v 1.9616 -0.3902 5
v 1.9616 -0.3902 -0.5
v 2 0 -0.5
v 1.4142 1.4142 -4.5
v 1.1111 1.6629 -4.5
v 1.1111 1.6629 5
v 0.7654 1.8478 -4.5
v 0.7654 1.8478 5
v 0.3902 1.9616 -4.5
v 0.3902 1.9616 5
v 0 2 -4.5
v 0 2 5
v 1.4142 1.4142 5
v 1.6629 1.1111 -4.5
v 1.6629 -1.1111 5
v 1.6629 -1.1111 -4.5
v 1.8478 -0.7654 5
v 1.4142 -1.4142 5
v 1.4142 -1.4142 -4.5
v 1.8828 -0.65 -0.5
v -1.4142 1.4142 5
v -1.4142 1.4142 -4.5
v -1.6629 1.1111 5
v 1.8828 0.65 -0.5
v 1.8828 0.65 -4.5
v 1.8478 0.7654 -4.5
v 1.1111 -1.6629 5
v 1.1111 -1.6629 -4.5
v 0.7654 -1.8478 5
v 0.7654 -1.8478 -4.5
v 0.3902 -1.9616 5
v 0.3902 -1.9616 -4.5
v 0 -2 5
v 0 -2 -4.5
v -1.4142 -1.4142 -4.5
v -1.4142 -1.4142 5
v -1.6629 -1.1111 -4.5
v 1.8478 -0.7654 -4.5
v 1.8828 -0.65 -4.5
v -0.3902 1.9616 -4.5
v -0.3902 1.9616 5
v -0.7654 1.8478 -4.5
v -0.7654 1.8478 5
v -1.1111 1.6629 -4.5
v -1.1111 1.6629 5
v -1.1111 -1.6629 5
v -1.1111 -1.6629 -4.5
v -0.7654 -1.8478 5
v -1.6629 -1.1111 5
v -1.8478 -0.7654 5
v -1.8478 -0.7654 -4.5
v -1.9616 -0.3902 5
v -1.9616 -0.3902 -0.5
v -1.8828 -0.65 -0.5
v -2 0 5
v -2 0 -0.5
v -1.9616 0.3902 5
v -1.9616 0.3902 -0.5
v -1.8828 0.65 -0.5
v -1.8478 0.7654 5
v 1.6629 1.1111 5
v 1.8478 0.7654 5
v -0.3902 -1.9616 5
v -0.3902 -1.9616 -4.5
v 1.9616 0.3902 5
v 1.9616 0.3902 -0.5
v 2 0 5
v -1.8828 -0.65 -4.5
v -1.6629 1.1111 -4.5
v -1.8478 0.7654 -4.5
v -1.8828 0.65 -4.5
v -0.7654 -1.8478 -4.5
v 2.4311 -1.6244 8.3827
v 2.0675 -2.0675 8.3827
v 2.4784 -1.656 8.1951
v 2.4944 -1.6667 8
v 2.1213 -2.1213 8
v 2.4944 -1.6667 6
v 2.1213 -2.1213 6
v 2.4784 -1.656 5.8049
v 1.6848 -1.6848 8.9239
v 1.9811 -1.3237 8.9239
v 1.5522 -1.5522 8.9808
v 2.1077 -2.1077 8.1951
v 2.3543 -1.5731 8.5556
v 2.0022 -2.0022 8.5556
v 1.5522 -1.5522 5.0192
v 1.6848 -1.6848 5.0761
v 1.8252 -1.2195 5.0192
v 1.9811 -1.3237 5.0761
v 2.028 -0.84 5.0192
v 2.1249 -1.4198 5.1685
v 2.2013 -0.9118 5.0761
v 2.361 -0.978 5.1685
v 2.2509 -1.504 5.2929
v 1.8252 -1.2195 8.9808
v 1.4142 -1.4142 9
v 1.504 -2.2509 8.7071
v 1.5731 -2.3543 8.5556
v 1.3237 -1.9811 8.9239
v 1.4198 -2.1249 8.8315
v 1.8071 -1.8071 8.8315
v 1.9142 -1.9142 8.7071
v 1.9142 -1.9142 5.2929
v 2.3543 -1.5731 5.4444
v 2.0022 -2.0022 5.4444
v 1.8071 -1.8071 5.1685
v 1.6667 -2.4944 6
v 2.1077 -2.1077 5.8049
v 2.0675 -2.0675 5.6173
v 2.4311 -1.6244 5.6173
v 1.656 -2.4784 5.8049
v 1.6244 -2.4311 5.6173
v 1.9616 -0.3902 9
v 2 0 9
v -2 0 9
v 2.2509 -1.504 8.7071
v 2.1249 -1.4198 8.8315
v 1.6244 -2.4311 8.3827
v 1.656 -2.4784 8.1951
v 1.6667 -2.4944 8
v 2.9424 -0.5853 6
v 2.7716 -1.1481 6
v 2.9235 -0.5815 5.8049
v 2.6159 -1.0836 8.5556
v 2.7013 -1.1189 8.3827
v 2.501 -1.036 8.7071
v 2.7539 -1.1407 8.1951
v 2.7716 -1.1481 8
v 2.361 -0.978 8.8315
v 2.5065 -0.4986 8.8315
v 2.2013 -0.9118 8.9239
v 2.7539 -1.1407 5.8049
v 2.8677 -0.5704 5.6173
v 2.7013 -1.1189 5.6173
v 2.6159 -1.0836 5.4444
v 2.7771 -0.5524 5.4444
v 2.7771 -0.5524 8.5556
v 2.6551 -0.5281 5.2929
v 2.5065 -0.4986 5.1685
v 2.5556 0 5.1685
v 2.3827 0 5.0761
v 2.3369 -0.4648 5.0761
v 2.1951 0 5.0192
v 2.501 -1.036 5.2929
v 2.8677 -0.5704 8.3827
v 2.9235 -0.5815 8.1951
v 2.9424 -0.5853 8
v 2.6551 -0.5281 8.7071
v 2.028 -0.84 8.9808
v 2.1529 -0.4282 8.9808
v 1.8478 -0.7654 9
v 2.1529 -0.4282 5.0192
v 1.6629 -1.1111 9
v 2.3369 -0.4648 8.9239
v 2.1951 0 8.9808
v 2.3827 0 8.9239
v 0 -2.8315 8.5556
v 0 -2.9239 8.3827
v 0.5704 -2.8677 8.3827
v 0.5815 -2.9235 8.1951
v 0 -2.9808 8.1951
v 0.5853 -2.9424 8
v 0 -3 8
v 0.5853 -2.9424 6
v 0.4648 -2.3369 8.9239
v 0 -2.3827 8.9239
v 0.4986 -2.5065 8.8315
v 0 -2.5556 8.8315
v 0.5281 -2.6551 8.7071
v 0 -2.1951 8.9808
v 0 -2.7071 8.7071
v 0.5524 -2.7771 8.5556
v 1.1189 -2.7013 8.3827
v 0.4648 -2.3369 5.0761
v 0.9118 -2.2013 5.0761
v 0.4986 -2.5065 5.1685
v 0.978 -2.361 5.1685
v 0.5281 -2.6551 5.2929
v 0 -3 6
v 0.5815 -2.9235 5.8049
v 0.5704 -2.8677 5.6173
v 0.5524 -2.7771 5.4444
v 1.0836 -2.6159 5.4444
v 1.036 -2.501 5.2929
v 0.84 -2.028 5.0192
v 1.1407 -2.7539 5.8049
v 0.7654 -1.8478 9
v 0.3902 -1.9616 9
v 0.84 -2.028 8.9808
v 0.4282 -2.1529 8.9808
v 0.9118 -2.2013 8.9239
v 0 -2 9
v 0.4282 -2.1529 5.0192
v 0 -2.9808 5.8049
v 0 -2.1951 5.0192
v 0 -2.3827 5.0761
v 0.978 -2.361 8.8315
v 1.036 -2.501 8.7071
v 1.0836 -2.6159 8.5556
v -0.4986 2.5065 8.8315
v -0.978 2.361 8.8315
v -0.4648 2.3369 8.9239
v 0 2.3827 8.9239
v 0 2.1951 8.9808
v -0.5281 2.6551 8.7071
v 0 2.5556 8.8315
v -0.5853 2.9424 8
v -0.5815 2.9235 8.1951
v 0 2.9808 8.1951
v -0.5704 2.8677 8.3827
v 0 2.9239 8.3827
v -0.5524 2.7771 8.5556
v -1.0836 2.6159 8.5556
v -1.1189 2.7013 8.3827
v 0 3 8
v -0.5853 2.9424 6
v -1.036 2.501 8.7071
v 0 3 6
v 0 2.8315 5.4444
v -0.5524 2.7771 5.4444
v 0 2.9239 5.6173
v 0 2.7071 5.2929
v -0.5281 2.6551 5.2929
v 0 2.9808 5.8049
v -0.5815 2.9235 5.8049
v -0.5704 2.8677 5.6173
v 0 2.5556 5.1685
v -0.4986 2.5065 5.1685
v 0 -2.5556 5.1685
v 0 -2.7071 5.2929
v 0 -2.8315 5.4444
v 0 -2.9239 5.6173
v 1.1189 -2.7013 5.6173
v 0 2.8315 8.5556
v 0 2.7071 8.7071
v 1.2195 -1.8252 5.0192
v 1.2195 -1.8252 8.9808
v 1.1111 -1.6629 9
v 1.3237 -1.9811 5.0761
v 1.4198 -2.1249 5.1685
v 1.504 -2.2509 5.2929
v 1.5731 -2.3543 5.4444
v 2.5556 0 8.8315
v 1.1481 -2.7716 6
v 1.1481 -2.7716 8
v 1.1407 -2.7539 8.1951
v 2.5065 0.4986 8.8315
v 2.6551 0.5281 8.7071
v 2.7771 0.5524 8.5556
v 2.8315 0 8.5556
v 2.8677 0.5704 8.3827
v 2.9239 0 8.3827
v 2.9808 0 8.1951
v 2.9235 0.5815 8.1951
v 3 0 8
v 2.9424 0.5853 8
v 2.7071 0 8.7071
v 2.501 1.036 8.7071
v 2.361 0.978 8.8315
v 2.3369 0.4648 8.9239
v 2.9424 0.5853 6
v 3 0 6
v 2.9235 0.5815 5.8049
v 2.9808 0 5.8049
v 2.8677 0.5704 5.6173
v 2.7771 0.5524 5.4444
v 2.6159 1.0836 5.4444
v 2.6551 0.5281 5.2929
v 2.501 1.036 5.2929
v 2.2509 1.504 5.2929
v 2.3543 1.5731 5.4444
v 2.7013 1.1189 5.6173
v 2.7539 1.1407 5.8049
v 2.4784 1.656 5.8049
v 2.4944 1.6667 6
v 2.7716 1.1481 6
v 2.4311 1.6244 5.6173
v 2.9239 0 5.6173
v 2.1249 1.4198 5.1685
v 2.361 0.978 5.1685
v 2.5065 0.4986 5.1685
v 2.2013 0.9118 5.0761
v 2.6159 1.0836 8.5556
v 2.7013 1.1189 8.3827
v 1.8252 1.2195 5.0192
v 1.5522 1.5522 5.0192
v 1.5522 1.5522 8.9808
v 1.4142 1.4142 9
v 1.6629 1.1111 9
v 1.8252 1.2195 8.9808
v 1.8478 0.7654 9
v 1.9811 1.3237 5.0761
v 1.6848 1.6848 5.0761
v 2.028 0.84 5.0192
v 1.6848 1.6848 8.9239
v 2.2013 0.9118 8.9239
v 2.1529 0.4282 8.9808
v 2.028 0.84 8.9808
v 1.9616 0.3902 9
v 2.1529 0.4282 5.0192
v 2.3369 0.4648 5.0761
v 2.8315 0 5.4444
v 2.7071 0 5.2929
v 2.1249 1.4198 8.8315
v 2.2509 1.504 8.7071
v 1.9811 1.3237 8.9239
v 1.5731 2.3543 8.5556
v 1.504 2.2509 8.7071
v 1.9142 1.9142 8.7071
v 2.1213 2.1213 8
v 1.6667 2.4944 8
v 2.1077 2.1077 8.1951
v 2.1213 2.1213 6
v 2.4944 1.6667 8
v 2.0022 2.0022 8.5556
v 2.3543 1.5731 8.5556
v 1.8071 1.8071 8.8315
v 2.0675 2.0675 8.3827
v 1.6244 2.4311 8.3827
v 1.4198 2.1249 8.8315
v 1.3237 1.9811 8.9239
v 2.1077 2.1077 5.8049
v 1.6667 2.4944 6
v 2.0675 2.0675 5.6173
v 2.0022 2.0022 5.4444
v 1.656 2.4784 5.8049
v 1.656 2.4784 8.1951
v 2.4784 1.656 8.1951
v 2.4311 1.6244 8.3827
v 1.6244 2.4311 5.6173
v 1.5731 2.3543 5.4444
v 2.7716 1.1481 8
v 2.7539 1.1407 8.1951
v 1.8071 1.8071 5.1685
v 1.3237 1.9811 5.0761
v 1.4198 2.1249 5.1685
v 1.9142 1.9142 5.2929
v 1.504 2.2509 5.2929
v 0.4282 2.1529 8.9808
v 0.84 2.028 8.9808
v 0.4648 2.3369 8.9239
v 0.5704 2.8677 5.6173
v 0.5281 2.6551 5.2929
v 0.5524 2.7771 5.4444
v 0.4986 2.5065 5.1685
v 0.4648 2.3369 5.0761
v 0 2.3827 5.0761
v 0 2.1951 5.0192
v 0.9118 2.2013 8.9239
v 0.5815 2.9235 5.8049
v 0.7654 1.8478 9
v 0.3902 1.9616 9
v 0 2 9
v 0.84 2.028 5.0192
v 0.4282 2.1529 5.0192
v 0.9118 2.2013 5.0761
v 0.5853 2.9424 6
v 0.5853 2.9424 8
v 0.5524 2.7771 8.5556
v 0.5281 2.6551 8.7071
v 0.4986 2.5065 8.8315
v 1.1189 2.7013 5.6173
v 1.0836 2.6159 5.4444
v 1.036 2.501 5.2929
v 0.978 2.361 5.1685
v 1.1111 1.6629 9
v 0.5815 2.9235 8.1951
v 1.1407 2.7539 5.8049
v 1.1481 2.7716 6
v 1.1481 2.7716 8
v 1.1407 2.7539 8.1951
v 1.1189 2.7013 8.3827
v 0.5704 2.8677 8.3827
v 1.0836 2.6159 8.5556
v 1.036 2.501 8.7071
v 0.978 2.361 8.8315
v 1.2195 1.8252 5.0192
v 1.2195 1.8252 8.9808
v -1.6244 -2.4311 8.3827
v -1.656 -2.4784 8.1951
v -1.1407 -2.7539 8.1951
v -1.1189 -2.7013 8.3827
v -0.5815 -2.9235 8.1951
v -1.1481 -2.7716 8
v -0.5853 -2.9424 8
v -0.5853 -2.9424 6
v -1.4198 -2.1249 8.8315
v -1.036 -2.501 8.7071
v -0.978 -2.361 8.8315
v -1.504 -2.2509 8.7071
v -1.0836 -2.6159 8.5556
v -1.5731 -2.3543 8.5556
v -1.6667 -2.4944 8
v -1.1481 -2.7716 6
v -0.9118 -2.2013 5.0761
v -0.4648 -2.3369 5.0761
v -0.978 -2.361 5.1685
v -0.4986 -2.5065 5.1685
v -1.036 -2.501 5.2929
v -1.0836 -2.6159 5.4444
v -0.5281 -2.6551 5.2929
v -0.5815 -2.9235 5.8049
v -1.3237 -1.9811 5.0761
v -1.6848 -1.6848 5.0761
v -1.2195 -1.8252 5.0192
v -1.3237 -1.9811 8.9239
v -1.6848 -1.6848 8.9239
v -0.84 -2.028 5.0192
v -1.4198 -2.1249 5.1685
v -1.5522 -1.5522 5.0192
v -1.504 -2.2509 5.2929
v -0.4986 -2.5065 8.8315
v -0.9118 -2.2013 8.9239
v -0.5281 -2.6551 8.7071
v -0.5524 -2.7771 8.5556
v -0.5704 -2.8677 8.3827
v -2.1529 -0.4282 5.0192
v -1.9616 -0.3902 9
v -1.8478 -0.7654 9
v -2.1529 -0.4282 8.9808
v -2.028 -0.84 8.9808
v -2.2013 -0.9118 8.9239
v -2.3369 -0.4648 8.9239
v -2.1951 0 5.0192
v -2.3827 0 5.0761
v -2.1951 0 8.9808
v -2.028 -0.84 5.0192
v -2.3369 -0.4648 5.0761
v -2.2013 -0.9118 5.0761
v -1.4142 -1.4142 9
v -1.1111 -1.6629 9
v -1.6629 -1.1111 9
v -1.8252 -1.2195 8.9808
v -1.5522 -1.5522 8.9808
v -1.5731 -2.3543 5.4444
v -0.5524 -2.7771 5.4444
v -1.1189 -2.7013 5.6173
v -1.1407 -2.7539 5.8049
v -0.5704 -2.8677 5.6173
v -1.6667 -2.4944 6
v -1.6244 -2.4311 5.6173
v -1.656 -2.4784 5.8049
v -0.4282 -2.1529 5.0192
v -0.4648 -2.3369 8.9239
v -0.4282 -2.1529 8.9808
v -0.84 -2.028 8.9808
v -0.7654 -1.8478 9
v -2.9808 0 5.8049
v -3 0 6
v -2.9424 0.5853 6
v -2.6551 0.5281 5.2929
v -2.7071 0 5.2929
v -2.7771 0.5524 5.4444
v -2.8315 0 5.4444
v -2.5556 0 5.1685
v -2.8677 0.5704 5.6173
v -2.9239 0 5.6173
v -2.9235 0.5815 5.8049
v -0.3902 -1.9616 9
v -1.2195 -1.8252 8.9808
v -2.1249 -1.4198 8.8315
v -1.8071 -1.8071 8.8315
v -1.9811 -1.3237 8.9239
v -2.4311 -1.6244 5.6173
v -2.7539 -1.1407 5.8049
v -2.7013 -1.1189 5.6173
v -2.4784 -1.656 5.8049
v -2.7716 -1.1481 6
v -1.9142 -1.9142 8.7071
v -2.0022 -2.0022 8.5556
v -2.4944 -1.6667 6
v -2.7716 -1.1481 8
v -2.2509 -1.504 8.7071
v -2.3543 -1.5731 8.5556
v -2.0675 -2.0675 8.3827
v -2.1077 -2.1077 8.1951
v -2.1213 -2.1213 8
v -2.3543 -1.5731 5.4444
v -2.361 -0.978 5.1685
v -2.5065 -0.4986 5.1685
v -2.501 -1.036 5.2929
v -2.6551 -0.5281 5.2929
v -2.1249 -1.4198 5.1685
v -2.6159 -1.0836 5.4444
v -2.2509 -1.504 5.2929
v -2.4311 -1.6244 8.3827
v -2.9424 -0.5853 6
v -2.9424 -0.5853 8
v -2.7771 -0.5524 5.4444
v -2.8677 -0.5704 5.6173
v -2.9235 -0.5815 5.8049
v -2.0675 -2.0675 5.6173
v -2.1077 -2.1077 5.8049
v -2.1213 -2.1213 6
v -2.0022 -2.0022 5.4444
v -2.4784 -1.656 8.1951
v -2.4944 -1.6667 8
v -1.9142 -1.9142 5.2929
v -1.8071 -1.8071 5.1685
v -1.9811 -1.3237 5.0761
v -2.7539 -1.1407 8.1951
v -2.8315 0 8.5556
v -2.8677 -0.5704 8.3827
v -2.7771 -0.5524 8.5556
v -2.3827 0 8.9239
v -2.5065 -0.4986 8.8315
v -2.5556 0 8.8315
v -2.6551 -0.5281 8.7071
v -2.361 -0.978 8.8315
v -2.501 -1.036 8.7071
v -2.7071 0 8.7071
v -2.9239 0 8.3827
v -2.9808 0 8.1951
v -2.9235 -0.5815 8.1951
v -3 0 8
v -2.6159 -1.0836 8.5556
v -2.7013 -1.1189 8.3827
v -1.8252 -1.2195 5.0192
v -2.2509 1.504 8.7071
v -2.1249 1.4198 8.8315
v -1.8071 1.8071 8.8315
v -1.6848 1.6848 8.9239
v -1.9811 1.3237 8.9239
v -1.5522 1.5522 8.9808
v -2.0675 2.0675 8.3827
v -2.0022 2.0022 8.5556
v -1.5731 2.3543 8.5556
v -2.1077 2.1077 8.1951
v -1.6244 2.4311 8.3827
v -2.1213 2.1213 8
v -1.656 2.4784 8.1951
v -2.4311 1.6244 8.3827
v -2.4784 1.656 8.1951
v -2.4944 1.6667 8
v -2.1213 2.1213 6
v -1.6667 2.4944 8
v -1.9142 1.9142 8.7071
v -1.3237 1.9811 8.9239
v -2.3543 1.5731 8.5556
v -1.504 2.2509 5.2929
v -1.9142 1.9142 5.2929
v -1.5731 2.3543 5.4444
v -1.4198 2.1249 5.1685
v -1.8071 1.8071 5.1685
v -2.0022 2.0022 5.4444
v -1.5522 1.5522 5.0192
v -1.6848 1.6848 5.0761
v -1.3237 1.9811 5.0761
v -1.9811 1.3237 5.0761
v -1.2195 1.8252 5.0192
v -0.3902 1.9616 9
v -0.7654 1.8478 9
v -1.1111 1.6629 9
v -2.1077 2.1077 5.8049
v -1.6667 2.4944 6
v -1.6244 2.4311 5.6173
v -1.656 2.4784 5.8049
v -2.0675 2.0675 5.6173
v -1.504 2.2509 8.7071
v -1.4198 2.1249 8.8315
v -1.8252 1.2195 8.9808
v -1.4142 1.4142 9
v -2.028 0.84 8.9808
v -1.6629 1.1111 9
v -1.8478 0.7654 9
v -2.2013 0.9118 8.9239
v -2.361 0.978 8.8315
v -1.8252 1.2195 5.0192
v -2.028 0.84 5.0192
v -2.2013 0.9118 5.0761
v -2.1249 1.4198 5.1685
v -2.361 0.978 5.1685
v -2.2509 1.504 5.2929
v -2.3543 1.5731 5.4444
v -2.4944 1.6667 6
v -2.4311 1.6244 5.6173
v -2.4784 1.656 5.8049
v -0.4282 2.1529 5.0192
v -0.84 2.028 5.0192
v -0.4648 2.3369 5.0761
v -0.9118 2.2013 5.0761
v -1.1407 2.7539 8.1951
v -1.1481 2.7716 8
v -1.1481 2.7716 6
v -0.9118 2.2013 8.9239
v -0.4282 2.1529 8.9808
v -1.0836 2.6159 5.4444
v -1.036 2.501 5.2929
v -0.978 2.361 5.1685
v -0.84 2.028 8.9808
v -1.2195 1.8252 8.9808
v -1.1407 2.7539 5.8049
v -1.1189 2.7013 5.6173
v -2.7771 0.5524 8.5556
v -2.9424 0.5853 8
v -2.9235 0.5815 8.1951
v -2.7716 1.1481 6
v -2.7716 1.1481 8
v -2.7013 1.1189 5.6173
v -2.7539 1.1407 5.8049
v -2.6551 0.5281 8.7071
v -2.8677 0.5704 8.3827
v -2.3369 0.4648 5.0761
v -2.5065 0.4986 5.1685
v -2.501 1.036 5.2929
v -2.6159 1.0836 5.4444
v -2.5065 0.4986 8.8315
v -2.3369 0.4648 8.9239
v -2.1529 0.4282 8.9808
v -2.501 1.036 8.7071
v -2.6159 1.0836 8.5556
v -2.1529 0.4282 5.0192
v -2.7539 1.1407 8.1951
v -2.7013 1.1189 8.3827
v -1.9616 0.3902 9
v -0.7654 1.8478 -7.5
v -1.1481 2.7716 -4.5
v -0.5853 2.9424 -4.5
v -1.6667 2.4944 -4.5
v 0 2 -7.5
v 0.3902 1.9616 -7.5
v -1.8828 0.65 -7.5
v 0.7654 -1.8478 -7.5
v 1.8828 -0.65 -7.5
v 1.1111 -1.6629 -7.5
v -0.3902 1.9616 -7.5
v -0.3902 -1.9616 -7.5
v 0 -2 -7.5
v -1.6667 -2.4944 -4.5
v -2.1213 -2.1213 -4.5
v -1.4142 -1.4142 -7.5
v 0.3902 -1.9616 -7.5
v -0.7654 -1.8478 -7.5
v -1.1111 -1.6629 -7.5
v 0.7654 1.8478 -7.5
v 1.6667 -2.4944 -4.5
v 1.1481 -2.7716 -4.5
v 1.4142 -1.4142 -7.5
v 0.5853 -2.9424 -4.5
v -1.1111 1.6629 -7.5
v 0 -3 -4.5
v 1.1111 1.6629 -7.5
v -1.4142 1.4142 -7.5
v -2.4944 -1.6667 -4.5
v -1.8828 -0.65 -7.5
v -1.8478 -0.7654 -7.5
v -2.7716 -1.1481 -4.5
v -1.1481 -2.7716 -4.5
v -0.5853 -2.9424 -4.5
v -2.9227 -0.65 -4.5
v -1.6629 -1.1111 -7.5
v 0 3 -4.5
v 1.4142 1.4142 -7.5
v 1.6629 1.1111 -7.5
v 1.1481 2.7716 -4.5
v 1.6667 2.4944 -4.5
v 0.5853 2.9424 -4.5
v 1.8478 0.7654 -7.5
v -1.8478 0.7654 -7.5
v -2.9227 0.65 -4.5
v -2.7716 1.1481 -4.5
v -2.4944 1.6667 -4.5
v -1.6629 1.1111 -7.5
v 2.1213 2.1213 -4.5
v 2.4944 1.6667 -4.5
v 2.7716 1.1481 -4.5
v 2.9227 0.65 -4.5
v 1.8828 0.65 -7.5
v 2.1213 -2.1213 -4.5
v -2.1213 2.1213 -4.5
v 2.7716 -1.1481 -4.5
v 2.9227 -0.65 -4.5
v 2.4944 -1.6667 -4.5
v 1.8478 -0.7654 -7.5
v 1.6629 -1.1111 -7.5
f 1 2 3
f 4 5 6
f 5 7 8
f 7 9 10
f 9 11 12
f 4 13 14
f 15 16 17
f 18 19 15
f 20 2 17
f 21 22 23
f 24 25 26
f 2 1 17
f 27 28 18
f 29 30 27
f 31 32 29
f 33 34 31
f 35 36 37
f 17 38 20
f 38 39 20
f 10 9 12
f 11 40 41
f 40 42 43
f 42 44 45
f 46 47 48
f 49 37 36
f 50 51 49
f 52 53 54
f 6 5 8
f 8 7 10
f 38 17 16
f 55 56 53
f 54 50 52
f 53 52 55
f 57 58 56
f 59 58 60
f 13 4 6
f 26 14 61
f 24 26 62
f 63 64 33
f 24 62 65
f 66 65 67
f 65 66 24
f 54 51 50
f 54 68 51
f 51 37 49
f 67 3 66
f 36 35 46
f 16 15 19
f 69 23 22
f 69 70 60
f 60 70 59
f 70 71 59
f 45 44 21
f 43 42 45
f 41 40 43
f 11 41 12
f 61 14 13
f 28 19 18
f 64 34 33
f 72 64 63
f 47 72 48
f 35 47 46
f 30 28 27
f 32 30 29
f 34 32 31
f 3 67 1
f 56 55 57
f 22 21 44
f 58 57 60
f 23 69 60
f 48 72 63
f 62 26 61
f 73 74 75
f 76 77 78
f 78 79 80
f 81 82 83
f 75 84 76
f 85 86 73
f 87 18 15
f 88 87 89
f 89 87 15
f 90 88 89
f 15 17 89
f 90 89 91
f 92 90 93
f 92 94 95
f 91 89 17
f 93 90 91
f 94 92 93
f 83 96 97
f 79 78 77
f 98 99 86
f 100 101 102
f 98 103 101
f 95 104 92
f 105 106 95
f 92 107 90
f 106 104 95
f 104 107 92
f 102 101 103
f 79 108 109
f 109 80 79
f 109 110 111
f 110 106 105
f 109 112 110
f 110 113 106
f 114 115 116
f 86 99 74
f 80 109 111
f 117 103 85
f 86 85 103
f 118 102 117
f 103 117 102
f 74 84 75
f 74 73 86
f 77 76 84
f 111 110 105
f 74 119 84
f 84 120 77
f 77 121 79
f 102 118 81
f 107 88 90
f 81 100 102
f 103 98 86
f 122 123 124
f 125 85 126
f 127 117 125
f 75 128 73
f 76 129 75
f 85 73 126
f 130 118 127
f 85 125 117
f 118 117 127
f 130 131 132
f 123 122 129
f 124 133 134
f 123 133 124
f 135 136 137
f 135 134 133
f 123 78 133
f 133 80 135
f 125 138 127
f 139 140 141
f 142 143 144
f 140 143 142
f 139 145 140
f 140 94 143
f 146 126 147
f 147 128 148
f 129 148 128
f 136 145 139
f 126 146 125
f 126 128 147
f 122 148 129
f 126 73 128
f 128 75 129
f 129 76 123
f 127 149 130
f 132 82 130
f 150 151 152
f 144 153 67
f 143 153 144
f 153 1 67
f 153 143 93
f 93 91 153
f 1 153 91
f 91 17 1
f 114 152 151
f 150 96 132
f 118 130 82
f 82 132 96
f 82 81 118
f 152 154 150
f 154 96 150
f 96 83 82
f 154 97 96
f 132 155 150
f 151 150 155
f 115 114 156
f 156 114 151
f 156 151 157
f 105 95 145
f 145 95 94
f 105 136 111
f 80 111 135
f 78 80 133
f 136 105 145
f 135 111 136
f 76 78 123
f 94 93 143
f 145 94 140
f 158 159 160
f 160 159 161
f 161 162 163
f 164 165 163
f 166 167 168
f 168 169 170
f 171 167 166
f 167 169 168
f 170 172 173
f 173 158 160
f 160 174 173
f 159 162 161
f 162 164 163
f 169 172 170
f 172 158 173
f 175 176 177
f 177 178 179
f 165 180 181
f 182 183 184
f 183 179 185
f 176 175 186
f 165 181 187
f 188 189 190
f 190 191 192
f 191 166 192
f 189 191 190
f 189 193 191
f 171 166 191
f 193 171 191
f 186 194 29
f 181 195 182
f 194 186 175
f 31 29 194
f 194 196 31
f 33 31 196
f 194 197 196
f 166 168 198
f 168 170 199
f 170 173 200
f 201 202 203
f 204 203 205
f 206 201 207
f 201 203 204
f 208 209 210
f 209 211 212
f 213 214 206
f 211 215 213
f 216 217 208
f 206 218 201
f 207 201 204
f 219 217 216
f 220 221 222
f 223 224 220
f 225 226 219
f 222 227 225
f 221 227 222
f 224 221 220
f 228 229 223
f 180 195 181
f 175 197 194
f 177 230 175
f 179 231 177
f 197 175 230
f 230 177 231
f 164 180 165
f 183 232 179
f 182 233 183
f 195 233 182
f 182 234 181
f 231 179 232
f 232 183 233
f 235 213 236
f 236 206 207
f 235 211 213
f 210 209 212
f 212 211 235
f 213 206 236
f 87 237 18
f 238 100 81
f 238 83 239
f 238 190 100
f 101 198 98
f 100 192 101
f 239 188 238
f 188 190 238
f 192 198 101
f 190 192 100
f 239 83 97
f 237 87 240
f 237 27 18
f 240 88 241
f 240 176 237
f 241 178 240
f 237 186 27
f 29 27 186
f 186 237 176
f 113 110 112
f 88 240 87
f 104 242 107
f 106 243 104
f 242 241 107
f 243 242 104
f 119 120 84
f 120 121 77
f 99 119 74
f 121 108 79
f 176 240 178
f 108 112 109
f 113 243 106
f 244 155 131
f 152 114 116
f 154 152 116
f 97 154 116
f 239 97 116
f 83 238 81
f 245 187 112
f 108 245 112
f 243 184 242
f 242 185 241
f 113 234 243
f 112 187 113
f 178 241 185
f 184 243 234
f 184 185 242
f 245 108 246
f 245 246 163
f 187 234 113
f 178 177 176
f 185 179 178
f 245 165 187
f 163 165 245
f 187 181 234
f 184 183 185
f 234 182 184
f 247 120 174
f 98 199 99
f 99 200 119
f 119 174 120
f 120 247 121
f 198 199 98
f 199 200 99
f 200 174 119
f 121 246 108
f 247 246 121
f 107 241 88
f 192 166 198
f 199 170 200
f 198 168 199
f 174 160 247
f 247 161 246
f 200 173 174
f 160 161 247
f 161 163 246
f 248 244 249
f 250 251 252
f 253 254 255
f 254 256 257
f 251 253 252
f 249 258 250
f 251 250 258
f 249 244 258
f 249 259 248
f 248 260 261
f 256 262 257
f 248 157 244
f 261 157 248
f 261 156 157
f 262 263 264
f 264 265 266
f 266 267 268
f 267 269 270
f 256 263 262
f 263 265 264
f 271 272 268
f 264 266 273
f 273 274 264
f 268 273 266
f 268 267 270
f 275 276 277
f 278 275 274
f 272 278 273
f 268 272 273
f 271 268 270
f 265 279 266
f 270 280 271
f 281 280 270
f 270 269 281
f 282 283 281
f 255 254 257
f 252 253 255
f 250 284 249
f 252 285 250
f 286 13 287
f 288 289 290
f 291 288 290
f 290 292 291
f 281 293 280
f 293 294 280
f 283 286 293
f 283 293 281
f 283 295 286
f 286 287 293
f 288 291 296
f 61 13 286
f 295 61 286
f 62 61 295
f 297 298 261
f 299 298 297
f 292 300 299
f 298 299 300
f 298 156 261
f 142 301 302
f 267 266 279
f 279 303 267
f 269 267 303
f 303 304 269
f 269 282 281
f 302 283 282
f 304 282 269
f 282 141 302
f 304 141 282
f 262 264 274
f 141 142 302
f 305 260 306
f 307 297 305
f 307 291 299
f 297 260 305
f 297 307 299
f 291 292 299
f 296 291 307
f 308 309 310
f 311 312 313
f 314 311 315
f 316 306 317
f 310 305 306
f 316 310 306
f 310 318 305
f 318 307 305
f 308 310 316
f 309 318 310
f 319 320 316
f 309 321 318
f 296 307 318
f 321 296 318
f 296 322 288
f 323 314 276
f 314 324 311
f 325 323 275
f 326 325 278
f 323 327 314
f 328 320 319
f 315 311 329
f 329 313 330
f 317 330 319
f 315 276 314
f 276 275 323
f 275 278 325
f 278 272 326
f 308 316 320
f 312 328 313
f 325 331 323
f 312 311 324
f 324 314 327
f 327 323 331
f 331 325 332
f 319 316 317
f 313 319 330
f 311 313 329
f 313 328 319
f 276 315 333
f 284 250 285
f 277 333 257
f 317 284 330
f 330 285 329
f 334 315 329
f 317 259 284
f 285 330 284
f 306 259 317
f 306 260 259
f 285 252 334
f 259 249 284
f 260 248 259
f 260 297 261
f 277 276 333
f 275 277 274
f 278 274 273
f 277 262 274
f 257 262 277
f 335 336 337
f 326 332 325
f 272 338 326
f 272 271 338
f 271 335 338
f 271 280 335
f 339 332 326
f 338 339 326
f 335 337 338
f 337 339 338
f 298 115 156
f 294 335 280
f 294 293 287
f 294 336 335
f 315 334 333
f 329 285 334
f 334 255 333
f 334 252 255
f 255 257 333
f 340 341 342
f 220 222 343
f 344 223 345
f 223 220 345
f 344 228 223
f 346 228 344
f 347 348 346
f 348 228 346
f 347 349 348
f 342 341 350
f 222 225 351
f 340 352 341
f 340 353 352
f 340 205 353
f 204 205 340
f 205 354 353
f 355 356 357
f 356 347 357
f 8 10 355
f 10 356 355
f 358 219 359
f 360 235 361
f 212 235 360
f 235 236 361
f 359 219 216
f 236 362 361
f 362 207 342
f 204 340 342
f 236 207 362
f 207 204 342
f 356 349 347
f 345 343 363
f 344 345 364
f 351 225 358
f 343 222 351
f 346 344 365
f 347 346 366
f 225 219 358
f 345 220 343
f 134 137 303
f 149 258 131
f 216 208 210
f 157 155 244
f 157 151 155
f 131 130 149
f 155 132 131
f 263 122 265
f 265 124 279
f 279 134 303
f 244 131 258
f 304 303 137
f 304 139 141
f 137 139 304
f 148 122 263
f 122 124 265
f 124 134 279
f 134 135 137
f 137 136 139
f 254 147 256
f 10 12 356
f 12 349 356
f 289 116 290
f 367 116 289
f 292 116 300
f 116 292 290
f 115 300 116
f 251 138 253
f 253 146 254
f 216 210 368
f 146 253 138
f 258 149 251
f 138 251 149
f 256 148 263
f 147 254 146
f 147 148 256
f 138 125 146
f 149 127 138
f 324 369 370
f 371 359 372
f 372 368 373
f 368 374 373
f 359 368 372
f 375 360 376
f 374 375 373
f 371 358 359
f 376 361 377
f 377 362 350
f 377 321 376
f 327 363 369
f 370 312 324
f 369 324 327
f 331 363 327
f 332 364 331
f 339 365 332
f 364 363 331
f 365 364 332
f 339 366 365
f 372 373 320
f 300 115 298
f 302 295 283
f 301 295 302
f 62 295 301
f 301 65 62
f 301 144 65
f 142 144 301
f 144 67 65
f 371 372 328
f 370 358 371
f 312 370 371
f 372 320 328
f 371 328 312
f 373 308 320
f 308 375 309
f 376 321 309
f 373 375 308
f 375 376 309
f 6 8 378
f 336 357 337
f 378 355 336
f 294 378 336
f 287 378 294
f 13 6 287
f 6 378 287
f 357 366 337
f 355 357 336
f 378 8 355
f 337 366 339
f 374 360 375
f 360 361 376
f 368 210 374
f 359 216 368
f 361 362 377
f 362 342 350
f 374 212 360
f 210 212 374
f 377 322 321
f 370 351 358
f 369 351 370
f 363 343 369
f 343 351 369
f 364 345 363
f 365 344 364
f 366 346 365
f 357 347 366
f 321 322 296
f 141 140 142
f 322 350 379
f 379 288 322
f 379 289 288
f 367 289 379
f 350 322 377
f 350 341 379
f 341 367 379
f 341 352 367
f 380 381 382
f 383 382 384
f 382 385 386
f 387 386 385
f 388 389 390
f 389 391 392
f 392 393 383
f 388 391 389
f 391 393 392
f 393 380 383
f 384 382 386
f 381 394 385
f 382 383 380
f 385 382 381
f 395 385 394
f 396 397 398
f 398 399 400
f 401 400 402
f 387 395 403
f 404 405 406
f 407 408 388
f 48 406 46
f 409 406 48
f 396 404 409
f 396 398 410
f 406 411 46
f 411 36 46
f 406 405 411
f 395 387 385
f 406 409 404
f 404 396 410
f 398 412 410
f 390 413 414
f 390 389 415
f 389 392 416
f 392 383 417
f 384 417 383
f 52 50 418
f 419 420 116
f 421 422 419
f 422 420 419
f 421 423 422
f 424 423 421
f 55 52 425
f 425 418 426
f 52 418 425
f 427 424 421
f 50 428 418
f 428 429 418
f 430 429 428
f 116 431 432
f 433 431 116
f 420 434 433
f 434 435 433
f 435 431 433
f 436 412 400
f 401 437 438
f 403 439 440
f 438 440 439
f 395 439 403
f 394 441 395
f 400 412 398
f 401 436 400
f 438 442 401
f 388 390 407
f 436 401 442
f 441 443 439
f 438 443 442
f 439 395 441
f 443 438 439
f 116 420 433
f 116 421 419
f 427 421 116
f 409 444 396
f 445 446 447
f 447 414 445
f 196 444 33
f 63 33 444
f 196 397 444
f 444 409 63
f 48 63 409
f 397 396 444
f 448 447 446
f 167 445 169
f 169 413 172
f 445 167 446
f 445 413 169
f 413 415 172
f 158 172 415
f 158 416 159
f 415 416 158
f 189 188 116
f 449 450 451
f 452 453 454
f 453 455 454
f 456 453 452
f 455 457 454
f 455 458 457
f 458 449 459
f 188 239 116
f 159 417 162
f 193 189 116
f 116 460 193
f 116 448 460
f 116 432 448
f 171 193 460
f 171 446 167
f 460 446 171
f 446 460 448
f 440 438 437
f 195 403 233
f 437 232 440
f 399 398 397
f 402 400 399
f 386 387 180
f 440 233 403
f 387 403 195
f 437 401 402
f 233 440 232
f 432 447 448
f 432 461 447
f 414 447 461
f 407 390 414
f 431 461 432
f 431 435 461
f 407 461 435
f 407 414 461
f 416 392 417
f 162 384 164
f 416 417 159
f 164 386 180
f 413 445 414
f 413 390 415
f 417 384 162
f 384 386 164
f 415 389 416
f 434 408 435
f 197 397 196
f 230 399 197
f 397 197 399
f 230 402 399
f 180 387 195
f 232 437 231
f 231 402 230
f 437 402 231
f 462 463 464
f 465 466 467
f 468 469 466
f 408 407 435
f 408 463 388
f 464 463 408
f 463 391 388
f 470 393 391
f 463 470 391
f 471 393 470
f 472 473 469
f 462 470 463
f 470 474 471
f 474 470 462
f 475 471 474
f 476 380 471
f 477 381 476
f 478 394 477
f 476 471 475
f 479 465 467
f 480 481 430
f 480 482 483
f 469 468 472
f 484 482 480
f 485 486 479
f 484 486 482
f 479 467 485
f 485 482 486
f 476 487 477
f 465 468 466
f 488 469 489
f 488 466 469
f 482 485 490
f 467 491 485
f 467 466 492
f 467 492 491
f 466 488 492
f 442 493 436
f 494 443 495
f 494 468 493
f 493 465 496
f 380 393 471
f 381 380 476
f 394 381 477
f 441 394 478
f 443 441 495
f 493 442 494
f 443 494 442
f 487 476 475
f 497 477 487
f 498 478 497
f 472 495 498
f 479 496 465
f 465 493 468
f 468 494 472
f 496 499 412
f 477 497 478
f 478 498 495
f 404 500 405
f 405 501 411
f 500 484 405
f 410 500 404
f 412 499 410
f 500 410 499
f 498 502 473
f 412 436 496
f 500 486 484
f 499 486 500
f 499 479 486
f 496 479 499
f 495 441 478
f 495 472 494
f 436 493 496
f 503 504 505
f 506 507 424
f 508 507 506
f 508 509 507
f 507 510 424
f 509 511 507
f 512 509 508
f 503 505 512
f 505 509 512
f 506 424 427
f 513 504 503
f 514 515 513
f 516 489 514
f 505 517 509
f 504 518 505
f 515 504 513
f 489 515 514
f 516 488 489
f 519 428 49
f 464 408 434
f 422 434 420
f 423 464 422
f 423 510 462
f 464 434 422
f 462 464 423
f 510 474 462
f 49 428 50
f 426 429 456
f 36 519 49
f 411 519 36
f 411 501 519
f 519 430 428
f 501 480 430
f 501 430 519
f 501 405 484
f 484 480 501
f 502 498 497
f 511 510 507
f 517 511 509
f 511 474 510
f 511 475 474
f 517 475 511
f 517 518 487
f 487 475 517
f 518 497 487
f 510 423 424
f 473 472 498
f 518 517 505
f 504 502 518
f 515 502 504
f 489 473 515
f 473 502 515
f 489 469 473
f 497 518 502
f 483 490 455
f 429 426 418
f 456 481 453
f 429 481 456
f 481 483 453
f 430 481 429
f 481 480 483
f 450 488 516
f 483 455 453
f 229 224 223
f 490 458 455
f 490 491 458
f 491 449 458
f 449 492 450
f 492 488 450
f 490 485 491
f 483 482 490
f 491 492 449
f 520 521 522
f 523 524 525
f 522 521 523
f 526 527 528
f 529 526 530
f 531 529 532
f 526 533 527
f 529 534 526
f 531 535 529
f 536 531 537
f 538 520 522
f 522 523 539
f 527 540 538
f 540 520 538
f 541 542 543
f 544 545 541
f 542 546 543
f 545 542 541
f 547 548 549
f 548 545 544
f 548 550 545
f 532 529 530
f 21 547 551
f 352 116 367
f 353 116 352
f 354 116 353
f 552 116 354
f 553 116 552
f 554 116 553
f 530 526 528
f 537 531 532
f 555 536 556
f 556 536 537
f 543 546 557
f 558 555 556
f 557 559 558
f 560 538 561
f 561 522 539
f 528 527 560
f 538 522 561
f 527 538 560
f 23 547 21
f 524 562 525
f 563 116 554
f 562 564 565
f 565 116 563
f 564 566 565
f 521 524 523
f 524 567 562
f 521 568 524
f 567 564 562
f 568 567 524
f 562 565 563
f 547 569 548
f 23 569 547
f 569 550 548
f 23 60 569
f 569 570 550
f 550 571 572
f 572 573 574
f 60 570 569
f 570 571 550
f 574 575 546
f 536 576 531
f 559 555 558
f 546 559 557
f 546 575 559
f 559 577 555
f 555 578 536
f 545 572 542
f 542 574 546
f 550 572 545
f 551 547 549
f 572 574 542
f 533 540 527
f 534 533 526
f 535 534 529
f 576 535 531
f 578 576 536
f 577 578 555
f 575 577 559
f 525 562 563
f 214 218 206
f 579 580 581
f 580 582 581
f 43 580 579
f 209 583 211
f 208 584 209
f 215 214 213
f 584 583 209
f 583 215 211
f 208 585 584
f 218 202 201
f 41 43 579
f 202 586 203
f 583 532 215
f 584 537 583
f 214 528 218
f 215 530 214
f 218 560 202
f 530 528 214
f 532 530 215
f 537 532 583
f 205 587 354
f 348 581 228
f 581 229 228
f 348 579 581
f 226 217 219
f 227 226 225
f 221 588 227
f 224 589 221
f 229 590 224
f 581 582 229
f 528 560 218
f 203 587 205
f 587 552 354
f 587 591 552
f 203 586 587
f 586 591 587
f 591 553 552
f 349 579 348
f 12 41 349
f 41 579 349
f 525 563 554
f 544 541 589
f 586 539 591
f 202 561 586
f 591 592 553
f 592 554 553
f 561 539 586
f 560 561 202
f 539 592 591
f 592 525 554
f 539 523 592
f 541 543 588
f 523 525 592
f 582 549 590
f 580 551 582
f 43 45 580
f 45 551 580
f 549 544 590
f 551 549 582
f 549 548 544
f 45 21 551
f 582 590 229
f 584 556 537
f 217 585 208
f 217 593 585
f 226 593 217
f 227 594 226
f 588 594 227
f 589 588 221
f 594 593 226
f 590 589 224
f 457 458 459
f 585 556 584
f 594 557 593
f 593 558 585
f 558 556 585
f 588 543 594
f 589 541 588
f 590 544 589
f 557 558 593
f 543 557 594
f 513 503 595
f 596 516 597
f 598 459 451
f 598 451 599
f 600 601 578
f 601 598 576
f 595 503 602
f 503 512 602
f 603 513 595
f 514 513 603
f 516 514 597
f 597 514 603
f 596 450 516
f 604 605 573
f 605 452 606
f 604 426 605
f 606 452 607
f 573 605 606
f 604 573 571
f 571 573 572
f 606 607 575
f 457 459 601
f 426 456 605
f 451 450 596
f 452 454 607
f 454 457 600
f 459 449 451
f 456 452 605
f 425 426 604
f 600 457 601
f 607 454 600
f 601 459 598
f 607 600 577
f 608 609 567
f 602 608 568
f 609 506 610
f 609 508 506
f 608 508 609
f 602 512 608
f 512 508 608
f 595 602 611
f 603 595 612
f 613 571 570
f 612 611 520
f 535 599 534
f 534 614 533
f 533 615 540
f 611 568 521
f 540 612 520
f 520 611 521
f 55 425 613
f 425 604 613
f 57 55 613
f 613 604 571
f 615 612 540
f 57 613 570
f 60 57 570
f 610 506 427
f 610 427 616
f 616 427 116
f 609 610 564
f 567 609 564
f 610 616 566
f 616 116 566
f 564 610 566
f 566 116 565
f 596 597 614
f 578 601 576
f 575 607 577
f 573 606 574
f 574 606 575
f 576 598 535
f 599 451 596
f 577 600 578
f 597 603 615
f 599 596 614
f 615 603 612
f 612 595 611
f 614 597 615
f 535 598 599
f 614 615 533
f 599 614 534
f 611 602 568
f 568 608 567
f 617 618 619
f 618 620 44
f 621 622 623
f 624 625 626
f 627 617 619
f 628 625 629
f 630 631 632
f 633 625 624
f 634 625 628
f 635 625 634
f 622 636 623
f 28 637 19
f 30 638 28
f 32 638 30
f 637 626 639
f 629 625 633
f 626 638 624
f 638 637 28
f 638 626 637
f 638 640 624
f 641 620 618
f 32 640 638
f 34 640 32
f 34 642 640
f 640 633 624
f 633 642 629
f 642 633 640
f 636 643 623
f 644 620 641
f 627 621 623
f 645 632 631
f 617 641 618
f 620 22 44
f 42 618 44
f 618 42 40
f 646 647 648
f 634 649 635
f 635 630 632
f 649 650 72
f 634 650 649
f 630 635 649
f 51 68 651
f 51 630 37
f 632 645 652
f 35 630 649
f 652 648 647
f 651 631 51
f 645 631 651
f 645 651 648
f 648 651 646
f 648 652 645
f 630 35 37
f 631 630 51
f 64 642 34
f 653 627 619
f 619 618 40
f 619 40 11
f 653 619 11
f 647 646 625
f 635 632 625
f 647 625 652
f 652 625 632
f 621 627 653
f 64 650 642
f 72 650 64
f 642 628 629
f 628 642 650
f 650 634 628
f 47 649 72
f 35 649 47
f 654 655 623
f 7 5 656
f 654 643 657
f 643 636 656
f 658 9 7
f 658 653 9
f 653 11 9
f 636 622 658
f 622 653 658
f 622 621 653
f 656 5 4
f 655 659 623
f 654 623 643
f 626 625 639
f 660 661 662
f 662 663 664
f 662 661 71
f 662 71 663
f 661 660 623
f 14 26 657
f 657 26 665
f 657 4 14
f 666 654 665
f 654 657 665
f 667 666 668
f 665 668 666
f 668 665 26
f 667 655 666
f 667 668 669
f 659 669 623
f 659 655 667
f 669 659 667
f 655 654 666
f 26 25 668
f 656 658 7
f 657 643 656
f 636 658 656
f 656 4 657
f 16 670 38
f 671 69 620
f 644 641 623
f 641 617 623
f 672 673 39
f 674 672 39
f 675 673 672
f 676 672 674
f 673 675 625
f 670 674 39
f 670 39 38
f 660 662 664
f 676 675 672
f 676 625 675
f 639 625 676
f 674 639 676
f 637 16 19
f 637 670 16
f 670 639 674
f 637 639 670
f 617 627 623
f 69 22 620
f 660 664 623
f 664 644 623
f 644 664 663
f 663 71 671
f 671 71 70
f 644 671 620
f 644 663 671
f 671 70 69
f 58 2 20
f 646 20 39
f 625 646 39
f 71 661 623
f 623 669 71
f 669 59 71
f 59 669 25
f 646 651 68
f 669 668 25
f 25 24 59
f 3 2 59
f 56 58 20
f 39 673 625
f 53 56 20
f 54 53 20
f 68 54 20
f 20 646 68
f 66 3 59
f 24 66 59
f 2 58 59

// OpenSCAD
include<./libraries/BOSL/constants.scad>
use<./libraries/BOSL/shapes.scad>

include<./libraries/Round-Anything/polyround.scad>

$fn = 32;

// basic settings

pinLength = 15;
pinDiameter = 4;
pinHeadDiameter = 6;
pinHeadHeight = 4;
pinSplitWidth = 1.3;
pinSplitLength = 7;
pinBarbDiameter = 6;
pinBarbLength = 3;



difference(){

union(){
    // pin
    cyl(l=pinLength, d=pinDiameter, fillet=0);

    // pin head
    translate([0,0,pinLength-pinHeadHeight*2])
    cyl(l=pinHeadHeight, d=pinHeadDiameter, fillet=1);

    // pin barb
    translate([0, 0, (-(pinLength/2))-pinBarbLength/2+pinBarbLength])
    cylinder(h=pinBarbLength, d1=pinDiameter, d2=pinBarbDiameter, center=true);

    }

    // pin split
    translate([0, 0, -pinLength/2+pinSplitLength/2])
    cuboid([pinBarbDiameter, pinSplitWidth, pinSplitLength]);

}
